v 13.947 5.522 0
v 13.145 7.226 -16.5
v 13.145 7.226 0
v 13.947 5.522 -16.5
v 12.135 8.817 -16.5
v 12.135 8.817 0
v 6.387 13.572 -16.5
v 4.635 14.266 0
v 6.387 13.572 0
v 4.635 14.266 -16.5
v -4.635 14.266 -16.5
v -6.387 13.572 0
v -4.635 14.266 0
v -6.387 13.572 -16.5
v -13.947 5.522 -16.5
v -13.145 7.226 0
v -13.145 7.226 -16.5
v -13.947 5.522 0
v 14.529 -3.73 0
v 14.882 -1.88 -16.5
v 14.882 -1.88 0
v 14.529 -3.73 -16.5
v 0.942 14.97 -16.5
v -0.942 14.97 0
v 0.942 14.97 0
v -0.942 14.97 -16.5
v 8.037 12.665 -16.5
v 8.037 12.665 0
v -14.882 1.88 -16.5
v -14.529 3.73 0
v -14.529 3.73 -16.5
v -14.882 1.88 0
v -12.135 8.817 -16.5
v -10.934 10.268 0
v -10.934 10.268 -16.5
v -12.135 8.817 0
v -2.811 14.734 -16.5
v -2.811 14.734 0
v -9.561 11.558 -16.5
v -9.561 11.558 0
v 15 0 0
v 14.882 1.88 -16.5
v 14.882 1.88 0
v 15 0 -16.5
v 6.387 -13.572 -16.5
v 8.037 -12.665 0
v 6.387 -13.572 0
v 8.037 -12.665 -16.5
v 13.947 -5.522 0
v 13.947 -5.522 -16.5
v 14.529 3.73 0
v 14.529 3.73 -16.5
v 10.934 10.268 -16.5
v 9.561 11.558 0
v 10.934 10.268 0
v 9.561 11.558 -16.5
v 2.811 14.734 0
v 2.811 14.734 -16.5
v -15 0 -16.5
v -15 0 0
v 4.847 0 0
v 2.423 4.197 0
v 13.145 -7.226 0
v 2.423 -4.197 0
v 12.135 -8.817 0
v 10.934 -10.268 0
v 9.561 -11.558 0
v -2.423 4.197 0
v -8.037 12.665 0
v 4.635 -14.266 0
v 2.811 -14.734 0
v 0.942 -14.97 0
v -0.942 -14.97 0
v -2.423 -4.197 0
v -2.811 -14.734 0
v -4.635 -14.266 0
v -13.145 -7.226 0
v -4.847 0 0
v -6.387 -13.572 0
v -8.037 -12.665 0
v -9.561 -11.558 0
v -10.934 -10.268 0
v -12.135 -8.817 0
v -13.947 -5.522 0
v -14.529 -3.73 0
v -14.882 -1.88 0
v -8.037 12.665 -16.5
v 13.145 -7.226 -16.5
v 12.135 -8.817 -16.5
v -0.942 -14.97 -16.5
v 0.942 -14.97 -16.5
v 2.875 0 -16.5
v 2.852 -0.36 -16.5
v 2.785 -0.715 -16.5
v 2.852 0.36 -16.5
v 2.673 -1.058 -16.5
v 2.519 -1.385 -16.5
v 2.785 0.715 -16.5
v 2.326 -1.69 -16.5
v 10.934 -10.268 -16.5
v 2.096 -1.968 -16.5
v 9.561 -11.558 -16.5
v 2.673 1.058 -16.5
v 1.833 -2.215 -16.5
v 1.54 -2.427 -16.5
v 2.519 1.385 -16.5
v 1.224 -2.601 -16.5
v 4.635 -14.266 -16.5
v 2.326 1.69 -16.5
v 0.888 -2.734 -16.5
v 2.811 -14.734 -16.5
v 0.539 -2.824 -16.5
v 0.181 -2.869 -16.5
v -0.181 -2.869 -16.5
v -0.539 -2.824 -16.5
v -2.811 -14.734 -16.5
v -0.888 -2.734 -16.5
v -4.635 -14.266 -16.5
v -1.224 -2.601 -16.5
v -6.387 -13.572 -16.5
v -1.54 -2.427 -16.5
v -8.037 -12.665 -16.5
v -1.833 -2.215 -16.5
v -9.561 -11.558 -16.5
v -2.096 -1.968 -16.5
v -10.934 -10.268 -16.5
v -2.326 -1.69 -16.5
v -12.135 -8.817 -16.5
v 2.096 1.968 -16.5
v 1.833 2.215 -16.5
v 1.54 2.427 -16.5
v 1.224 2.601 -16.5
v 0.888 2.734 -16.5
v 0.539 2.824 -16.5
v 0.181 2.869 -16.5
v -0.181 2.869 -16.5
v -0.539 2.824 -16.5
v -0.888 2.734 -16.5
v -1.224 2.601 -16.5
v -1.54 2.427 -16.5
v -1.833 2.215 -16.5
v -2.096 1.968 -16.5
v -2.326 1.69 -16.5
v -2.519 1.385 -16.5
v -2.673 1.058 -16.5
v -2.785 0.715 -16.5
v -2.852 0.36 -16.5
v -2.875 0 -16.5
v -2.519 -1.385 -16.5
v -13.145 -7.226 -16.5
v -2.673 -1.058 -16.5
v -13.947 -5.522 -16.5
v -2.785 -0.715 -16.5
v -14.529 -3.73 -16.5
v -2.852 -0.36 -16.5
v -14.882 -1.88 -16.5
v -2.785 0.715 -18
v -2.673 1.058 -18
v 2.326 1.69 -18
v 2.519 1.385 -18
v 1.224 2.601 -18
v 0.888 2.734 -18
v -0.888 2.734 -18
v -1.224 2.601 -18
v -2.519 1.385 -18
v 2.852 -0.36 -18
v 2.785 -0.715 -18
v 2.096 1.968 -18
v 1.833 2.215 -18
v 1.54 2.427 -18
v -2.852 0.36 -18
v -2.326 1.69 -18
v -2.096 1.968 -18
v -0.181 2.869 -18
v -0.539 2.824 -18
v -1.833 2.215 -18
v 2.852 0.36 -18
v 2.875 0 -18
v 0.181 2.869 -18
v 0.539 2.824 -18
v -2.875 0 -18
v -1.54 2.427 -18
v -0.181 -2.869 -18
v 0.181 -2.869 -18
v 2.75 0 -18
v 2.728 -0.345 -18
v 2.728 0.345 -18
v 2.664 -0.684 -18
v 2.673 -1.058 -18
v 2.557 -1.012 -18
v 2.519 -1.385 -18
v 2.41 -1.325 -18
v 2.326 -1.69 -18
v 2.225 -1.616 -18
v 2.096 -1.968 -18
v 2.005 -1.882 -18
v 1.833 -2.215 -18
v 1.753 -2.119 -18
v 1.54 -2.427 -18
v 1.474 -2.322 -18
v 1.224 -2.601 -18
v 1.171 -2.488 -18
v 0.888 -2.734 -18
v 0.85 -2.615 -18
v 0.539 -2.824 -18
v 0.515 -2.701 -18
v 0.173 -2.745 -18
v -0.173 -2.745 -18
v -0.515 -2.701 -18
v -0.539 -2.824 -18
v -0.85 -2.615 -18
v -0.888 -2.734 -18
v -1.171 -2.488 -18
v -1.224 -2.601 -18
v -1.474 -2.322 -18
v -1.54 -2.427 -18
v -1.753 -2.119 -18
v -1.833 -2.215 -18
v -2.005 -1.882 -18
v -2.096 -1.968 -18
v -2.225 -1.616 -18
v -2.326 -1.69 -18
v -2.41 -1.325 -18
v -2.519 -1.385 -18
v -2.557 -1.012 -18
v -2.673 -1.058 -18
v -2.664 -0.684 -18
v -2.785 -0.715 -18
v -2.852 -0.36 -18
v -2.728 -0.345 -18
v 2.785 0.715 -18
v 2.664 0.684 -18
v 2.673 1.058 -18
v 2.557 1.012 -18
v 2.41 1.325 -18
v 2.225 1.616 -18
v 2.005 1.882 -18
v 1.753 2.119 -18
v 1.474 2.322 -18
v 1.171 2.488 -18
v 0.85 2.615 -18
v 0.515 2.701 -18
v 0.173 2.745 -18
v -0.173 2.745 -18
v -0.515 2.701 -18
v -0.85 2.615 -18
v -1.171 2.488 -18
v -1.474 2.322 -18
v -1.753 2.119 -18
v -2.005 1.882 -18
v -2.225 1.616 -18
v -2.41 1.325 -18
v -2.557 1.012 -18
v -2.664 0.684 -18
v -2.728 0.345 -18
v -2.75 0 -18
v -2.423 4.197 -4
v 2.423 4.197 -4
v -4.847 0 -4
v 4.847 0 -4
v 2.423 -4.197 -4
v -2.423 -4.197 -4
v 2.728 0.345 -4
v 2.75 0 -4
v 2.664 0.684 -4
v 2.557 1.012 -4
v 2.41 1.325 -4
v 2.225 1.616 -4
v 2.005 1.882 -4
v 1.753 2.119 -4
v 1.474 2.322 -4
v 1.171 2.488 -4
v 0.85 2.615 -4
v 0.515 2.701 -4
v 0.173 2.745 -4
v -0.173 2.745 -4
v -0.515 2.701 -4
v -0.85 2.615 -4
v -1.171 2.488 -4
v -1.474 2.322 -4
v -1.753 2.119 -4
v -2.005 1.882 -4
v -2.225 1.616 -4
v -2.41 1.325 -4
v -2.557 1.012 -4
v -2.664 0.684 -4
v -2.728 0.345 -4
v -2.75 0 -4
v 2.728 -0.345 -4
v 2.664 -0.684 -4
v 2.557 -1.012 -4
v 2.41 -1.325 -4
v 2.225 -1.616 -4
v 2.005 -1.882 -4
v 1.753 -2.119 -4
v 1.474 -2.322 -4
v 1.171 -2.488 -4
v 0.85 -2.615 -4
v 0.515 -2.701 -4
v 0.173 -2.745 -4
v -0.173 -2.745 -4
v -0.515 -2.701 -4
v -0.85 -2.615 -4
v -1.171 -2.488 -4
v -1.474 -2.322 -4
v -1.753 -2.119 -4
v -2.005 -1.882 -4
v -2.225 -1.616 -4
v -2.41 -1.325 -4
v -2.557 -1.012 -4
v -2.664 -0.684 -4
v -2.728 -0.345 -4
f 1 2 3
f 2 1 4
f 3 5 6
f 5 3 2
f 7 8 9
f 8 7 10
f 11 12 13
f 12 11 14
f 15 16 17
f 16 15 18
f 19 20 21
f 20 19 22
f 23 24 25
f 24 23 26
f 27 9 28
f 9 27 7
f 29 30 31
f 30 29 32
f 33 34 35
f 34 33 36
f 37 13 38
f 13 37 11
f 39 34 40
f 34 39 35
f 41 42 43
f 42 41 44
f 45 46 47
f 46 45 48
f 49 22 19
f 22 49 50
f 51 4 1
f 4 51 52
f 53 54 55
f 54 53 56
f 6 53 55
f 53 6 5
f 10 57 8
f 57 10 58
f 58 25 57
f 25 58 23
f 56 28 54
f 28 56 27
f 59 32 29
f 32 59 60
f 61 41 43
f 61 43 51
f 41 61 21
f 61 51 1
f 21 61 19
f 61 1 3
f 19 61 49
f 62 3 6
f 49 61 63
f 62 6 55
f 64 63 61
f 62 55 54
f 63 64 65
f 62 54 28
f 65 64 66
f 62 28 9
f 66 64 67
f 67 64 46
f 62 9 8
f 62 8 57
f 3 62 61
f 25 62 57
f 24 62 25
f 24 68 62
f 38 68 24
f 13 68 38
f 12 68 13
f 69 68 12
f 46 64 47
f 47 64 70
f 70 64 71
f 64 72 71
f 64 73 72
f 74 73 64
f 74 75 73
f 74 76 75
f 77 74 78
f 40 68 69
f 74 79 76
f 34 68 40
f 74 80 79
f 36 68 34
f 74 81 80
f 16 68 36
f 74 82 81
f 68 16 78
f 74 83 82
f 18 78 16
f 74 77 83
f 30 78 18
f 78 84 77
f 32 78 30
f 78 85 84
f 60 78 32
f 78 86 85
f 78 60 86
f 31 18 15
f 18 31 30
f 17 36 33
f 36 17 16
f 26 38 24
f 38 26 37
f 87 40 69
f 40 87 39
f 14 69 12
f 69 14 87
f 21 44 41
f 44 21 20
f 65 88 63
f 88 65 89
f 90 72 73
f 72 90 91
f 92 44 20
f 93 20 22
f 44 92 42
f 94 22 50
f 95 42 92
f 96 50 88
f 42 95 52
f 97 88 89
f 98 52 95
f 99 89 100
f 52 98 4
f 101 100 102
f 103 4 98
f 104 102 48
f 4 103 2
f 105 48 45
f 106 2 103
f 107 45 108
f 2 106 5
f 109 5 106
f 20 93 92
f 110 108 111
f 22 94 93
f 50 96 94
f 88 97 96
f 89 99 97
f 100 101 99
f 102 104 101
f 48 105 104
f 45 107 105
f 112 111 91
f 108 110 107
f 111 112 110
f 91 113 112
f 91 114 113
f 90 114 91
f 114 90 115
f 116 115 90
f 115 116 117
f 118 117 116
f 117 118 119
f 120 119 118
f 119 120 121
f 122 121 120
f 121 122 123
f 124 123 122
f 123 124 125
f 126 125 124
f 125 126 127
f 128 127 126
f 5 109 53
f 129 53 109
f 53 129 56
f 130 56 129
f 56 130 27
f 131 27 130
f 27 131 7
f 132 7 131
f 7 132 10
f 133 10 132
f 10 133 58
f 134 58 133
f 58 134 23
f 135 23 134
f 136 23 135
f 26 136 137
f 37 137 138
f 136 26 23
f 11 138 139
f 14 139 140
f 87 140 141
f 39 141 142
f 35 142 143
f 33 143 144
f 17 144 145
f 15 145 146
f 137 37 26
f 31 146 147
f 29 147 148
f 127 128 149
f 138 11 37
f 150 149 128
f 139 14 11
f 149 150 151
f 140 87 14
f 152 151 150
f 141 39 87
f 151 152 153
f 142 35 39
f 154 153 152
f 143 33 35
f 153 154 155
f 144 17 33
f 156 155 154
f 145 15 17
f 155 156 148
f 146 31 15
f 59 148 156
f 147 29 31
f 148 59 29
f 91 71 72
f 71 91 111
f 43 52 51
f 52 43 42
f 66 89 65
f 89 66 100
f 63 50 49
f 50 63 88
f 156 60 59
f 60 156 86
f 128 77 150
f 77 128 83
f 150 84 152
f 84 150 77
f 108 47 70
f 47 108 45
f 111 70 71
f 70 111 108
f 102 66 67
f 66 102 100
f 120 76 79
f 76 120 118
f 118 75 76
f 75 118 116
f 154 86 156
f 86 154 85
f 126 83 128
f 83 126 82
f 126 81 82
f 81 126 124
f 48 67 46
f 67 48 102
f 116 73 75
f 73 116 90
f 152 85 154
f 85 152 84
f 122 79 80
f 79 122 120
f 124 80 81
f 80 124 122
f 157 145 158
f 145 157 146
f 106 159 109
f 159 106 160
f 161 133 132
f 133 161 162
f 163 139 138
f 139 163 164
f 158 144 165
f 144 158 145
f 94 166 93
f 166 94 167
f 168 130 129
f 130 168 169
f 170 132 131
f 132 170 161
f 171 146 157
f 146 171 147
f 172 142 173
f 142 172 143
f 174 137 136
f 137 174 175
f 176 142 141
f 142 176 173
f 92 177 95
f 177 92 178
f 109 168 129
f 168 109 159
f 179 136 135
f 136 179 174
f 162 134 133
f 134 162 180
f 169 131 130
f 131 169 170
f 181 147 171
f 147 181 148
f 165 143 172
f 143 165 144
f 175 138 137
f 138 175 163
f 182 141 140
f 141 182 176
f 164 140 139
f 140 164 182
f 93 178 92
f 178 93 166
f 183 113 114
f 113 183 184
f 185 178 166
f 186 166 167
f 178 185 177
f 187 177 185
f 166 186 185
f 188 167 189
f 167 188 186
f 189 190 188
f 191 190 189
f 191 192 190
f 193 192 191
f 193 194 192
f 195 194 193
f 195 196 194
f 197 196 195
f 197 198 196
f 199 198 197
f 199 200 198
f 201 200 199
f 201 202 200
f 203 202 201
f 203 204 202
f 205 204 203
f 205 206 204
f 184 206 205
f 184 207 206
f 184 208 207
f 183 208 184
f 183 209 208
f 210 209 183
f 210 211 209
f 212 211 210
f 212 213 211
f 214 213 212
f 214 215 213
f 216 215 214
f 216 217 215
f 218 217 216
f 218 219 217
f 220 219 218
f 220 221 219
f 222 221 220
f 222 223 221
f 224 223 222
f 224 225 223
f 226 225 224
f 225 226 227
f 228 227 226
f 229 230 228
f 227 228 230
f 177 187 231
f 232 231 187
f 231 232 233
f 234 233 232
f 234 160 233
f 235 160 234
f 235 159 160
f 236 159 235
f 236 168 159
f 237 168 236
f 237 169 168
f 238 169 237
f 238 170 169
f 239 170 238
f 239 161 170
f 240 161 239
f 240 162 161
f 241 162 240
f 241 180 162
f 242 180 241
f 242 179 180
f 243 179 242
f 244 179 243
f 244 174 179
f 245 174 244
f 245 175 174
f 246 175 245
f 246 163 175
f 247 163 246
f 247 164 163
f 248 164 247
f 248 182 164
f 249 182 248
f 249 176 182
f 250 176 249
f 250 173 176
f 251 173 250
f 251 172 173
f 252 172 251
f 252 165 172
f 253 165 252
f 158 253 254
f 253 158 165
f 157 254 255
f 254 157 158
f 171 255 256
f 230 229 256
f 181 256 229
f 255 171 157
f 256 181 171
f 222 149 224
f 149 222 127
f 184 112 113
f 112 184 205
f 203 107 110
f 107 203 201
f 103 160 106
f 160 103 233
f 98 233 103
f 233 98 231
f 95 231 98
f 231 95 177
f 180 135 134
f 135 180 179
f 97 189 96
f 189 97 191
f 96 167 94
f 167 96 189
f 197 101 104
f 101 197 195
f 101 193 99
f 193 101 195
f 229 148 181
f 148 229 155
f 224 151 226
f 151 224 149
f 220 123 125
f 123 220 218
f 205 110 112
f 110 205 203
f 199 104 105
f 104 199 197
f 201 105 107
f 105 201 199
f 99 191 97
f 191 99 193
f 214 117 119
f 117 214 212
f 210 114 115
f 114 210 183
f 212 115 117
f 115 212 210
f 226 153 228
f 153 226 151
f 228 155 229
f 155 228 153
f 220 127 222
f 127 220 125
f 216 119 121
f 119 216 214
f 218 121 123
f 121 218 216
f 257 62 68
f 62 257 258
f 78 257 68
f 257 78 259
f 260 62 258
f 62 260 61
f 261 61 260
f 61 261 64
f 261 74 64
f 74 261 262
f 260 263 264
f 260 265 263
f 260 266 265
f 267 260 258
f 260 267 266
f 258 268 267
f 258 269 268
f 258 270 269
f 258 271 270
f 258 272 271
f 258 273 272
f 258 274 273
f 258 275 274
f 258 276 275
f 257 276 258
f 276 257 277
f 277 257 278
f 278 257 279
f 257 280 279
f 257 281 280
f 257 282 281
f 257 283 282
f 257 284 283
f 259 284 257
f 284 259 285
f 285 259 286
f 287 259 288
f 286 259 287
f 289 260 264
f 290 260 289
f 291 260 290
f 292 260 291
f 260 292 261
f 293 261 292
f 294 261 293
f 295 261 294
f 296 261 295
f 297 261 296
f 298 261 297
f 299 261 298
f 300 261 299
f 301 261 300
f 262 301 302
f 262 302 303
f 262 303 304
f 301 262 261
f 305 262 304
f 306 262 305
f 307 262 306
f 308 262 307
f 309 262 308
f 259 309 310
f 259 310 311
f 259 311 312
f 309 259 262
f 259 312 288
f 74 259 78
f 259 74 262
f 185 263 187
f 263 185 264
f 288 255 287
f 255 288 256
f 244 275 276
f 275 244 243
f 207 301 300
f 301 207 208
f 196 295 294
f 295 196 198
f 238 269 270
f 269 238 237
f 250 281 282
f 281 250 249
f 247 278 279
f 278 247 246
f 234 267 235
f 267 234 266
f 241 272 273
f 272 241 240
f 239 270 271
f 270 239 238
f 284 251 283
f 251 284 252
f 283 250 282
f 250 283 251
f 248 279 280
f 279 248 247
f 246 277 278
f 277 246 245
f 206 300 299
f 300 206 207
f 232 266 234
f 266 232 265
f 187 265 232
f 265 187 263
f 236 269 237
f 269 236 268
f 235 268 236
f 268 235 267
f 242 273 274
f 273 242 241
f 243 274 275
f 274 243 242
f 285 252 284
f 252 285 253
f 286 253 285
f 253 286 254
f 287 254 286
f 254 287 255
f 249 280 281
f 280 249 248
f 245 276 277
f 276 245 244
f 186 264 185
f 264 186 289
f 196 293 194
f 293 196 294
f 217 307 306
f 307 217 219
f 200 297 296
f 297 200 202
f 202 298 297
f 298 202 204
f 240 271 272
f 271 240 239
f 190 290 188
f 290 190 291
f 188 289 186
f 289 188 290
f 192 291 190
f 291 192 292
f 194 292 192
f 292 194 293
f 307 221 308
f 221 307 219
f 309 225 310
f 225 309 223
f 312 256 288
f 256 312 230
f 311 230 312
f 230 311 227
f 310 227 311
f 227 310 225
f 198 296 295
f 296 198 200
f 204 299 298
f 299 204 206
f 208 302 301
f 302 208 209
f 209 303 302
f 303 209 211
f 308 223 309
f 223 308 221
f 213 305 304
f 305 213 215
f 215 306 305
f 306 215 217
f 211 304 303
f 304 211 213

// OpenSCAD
$fn = 50;

difference() {
	union() {
		translate(v = [0, 0, -16.5]) {
			cylinder(h = 16.5, r = 15.0);
		}
		#translate(v = [0, 0, -18.0]) {
			cylinder(h = 18, r = 2.875);
		}
	}
	union() {
		translate(v = [0, 0, 0]) {
			rotate(a = [0, 0, 0]) {
				difference() {
					union() {
						translate(v = [0, 0, -4]) {
							linear_extrude(height = 4) {
								polygon(points = [[4.8468, 0.0], [2.4234000000000004, 4.197451927062417], [-2.423399999999999, 4.197451927062417], [-4.8468, 5.935618106107392e-16], [-2.423400000000002, -4.197451927062416], [2.423399999999997, -4.197451927062419]]);
							}
						}
					}
					union();
				}
			}
		}
		#translate(v = [0, 0, -100.0]) {
			cylinder(h = 200, r = 2.75);
		}
	}
}
